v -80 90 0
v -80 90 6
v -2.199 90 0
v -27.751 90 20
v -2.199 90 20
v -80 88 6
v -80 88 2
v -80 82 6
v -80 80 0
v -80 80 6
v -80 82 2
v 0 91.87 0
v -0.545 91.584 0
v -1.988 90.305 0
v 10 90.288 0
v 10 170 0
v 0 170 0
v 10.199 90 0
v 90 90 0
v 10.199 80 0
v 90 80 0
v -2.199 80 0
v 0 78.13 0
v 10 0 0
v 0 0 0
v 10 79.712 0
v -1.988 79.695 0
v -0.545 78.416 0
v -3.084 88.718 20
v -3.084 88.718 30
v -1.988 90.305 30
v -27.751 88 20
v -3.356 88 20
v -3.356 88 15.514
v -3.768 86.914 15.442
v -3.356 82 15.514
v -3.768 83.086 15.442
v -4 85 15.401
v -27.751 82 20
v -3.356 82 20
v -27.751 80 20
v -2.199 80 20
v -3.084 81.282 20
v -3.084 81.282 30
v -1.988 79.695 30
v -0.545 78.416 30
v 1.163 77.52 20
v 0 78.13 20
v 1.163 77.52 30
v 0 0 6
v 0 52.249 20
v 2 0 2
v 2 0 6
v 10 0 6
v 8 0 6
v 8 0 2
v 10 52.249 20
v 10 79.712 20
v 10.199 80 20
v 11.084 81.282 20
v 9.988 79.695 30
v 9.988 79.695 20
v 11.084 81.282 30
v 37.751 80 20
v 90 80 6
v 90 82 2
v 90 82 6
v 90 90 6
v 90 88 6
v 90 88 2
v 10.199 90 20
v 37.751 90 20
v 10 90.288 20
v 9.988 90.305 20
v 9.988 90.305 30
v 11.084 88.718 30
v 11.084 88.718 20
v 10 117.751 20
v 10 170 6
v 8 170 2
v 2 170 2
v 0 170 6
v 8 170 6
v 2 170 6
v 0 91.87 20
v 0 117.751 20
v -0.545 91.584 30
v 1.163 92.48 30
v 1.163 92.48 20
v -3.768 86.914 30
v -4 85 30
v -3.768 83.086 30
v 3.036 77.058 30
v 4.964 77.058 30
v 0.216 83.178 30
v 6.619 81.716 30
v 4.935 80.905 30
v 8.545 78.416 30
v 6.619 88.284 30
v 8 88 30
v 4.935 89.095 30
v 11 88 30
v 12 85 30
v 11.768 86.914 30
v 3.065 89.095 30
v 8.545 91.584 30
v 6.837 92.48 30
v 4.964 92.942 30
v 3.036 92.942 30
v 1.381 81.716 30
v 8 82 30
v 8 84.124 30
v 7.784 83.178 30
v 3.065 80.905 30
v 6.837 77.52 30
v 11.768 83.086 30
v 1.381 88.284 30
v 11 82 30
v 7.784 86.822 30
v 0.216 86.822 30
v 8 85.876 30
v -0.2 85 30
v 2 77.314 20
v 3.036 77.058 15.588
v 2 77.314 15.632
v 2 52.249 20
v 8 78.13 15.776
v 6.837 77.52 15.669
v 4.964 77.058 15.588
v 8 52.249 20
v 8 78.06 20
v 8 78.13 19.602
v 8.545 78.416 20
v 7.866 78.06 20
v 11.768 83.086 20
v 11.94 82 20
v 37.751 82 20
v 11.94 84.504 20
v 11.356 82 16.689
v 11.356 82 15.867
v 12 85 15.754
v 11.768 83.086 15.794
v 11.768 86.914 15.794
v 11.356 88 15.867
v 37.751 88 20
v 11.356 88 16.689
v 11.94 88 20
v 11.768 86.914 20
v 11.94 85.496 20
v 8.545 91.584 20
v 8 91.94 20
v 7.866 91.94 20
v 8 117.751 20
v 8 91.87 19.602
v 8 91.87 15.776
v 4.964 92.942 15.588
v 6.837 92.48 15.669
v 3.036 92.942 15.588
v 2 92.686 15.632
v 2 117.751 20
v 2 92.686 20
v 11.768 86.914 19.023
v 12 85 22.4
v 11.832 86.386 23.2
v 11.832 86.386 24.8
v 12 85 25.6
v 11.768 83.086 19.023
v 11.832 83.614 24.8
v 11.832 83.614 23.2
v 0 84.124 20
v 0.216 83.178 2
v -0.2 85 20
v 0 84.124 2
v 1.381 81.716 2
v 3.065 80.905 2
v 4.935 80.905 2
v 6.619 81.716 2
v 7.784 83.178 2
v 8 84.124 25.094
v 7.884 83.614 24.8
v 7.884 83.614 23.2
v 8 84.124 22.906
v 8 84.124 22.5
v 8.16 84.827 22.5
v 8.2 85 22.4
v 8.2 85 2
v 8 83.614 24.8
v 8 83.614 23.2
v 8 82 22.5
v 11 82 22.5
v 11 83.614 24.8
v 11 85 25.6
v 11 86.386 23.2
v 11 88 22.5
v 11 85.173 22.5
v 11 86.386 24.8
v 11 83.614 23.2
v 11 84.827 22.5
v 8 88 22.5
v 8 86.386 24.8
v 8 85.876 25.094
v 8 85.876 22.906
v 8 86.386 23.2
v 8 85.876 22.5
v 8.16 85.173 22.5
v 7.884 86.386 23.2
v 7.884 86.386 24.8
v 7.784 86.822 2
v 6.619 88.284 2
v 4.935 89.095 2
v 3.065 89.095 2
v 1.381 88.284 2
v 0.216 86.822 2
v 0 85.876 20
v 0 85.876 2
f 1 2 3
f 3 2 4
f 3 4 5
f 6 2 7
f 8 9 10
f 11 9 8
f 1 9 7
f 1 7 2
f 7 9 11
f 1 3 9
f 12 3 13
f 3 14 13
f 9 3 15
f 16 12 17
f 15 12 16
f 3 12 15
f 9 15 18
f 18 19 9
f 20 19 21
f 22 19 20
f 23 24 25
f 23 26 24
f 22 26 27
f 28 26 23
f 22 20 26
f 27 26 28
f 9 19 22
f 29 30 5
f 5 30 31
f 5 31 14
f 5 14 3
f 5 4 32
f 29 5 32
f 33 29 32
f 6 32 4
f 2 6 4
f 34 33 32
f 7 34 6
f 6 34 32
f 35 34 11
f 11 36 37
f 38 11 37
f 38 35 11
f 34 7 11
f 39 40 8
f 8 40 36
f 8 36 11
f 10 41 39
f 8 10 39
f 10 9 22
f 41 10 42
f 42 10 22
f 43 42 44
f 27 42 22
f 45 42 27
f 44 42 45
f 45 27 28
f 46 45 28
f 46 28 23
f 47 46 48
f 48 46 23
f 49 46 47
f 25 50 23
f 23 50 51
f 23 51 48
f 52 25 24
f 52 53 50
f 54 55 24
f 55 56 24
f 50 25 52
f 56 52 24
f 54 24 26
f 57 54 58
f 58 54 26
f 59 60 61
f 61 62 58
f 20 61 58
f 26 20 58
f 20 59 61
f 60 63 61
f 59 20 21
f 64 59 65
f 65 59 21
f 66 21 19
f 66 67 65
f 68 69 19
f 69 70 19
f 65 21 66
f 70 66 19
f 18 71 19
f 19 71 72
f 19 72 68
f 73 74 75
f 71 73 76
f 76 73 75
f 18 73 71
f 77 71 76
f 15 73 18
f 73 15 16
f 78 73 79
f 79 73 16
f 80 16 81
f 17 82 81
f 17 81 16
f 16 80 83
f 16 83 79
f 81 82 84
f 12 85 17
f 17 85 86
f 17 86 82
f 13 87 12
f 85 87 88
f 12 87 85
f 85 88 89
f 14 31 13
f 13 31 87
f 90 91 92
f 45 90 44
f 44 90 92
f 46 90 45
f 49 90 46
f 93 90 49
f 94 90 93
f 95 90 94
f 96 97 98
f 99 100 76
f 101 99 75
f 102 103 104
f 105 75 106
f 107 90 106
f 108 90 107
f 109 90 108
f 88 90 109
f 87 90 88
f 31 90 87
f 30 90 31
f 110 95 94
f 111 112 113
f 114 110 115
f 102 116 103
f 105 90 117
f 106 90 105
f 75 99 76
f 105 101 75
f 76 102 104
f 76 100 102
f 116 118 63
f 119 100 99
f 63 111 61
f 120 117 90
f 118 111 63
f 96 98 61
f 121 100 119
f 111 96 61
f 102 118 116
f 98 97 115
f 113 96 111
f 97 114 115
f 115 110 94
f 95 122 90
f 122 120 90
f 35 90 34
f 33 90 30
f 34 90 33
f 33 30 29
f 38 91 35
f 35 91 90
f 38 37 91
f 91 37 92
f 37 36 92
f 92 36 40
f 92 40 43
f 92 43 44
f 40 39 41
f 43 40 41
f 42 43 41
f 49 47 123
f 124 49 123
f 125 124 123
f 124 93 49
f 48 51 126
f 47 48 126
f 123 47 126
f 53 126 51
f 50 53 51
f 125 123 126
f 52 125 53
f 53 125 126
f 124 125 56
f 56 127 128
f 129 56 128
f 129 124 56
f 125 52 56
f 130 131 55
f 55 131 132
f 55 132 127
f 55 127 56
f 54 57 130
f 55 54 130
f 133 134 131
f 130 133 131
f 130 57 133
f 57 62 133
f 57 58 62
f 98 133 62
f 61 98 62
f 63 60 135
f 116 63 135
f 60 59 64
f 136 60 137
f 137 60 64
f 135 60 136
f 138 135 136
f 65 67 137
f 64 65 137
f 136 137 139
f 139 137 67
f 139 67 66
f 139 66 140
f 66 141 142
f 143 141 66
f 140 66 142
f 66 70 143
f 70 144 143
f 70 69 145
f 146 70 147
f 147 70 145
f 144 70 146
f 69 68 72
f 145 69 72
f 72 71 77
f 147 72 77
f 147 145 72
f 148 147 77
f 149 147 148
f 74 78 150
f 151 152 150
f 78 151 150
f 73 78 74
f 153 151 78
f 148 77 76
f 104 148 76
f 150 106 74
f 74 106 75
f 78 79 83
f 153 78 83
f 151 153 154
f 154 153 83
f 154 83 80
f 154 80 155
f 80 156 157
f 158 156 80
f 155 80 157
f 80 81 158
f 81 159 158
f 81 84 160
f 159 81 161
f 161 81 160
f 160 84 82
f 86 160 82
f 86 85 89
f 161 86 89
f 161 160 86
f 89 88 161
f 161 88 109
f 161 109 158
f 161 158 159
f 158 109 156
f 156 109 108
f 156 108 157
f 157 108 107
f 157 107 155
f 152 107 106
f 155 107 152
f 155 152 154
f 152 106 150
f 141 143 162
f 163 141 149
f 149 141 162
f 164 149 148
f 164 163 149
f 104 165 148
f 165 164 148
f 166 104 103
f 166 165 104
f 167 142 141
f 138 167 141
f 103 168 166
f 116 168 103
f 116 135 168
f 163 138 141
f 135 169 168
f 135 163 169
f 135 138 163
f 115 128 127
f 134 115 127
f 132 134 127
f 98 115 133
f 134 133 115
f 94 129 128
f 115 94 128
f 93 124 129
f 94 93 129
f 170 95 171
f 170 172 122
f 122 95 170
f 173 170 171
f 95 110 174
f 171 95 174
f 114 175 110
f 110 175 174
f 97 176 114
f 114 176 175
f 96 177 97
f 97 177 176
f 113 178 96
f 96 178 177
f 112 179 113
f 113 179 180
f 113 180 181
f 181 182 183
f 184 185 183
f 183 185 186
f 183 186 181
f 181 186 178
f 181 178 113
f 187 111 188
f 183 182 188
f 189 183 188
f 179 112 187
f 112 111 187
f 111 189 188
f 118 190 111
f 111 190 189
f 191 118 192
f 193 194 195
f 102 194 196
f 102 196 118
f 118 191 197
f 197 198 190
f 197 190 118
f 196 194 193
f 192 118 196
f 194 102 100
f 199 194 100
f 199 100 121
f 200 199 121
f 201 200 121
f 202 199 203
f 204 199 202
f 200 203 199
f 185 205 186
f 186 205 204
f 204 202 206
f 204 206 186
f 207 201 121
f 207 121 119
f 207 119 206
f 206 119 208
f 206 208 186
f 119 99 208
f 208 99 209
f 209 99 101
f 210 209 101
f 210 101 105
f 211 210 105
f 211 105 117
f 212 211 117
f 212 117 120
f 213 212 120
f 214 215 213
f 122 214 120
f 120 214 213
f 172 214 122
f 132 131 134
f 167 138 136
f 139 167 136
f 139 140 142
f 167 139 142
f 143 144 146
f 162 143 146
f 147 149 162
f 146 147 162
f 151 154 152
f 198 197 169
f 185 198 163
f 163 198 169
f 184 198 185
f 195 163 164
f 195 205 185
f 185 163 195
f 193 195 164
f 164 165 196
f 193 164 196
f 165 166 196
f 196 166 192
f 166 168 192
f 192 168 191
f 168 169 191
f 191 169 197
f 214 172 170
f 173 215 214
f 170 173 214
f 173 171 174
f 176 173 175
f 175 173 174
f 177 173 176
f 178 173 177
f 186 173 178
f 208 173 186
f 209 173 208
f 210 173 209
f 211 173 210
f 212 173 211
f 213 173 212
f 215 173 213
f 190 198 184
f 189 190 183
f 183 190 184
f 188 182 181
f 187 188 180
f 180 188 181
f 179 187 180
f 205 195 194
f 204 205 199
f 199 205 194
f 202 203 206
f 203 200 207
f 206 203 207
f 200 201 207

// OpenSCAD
difference() {
	translate([0,0,0]) rotate([0,0,0]) cube ([10,80,20]);
	translate([2,0,2]) rotate([10,0,0]) cube ([6,80,20]);
	translate([-5,0,6]) rotate([15,0,0]) cube ([16,80,20]);
}
translate([-80,90,0]) rotate([0,0,-90]) {
	difference() {
	translate([0,0,0]) rotate([0,0,0]) cube ([10,80,20]);
	translate([2,0,2]) rotate([10,0,0]) cube ([6,80,20]);
	translate([-5,0,6]) rotate([15,0,0]) cube ([16,80,20]);
}
}

translate([90,80,0]) rotate([0,0,90]) {
	difference() {
	translate([0,0,0]) rotate([0,0,0]) cube ([10,80,20]);
	translate([2,0,2]) rotate([10,0,0]) cube ([6,80,20]);
	translate([-5,0,6]) rotate([15,0,0]) cube ([16,80,20]);
}
}

translate([10,170,0]) rotate([0,0,180]) {
	difference() {
	translate([0,0,0]) rotate([0,0,0]) cube ([10,80,20]);
	translate([2,0,2]) rotate([10,0,0]) cube ([6,80,20]);
	translate([-5,0,6]) rotate([15,0,0]) cube ([16,80,20]);
}
}

difference() {
	translate([4,85,0]) cylinder(r=8,h=30);
	translate([4,85,2]) cylinder(r=4.2,h=33);
	translate([4,85,24]) rotate([0,90,0]) cylinder(r=1.6,h=24);
	translate([8,82,22.5]) cube([3,6,40]);
}
